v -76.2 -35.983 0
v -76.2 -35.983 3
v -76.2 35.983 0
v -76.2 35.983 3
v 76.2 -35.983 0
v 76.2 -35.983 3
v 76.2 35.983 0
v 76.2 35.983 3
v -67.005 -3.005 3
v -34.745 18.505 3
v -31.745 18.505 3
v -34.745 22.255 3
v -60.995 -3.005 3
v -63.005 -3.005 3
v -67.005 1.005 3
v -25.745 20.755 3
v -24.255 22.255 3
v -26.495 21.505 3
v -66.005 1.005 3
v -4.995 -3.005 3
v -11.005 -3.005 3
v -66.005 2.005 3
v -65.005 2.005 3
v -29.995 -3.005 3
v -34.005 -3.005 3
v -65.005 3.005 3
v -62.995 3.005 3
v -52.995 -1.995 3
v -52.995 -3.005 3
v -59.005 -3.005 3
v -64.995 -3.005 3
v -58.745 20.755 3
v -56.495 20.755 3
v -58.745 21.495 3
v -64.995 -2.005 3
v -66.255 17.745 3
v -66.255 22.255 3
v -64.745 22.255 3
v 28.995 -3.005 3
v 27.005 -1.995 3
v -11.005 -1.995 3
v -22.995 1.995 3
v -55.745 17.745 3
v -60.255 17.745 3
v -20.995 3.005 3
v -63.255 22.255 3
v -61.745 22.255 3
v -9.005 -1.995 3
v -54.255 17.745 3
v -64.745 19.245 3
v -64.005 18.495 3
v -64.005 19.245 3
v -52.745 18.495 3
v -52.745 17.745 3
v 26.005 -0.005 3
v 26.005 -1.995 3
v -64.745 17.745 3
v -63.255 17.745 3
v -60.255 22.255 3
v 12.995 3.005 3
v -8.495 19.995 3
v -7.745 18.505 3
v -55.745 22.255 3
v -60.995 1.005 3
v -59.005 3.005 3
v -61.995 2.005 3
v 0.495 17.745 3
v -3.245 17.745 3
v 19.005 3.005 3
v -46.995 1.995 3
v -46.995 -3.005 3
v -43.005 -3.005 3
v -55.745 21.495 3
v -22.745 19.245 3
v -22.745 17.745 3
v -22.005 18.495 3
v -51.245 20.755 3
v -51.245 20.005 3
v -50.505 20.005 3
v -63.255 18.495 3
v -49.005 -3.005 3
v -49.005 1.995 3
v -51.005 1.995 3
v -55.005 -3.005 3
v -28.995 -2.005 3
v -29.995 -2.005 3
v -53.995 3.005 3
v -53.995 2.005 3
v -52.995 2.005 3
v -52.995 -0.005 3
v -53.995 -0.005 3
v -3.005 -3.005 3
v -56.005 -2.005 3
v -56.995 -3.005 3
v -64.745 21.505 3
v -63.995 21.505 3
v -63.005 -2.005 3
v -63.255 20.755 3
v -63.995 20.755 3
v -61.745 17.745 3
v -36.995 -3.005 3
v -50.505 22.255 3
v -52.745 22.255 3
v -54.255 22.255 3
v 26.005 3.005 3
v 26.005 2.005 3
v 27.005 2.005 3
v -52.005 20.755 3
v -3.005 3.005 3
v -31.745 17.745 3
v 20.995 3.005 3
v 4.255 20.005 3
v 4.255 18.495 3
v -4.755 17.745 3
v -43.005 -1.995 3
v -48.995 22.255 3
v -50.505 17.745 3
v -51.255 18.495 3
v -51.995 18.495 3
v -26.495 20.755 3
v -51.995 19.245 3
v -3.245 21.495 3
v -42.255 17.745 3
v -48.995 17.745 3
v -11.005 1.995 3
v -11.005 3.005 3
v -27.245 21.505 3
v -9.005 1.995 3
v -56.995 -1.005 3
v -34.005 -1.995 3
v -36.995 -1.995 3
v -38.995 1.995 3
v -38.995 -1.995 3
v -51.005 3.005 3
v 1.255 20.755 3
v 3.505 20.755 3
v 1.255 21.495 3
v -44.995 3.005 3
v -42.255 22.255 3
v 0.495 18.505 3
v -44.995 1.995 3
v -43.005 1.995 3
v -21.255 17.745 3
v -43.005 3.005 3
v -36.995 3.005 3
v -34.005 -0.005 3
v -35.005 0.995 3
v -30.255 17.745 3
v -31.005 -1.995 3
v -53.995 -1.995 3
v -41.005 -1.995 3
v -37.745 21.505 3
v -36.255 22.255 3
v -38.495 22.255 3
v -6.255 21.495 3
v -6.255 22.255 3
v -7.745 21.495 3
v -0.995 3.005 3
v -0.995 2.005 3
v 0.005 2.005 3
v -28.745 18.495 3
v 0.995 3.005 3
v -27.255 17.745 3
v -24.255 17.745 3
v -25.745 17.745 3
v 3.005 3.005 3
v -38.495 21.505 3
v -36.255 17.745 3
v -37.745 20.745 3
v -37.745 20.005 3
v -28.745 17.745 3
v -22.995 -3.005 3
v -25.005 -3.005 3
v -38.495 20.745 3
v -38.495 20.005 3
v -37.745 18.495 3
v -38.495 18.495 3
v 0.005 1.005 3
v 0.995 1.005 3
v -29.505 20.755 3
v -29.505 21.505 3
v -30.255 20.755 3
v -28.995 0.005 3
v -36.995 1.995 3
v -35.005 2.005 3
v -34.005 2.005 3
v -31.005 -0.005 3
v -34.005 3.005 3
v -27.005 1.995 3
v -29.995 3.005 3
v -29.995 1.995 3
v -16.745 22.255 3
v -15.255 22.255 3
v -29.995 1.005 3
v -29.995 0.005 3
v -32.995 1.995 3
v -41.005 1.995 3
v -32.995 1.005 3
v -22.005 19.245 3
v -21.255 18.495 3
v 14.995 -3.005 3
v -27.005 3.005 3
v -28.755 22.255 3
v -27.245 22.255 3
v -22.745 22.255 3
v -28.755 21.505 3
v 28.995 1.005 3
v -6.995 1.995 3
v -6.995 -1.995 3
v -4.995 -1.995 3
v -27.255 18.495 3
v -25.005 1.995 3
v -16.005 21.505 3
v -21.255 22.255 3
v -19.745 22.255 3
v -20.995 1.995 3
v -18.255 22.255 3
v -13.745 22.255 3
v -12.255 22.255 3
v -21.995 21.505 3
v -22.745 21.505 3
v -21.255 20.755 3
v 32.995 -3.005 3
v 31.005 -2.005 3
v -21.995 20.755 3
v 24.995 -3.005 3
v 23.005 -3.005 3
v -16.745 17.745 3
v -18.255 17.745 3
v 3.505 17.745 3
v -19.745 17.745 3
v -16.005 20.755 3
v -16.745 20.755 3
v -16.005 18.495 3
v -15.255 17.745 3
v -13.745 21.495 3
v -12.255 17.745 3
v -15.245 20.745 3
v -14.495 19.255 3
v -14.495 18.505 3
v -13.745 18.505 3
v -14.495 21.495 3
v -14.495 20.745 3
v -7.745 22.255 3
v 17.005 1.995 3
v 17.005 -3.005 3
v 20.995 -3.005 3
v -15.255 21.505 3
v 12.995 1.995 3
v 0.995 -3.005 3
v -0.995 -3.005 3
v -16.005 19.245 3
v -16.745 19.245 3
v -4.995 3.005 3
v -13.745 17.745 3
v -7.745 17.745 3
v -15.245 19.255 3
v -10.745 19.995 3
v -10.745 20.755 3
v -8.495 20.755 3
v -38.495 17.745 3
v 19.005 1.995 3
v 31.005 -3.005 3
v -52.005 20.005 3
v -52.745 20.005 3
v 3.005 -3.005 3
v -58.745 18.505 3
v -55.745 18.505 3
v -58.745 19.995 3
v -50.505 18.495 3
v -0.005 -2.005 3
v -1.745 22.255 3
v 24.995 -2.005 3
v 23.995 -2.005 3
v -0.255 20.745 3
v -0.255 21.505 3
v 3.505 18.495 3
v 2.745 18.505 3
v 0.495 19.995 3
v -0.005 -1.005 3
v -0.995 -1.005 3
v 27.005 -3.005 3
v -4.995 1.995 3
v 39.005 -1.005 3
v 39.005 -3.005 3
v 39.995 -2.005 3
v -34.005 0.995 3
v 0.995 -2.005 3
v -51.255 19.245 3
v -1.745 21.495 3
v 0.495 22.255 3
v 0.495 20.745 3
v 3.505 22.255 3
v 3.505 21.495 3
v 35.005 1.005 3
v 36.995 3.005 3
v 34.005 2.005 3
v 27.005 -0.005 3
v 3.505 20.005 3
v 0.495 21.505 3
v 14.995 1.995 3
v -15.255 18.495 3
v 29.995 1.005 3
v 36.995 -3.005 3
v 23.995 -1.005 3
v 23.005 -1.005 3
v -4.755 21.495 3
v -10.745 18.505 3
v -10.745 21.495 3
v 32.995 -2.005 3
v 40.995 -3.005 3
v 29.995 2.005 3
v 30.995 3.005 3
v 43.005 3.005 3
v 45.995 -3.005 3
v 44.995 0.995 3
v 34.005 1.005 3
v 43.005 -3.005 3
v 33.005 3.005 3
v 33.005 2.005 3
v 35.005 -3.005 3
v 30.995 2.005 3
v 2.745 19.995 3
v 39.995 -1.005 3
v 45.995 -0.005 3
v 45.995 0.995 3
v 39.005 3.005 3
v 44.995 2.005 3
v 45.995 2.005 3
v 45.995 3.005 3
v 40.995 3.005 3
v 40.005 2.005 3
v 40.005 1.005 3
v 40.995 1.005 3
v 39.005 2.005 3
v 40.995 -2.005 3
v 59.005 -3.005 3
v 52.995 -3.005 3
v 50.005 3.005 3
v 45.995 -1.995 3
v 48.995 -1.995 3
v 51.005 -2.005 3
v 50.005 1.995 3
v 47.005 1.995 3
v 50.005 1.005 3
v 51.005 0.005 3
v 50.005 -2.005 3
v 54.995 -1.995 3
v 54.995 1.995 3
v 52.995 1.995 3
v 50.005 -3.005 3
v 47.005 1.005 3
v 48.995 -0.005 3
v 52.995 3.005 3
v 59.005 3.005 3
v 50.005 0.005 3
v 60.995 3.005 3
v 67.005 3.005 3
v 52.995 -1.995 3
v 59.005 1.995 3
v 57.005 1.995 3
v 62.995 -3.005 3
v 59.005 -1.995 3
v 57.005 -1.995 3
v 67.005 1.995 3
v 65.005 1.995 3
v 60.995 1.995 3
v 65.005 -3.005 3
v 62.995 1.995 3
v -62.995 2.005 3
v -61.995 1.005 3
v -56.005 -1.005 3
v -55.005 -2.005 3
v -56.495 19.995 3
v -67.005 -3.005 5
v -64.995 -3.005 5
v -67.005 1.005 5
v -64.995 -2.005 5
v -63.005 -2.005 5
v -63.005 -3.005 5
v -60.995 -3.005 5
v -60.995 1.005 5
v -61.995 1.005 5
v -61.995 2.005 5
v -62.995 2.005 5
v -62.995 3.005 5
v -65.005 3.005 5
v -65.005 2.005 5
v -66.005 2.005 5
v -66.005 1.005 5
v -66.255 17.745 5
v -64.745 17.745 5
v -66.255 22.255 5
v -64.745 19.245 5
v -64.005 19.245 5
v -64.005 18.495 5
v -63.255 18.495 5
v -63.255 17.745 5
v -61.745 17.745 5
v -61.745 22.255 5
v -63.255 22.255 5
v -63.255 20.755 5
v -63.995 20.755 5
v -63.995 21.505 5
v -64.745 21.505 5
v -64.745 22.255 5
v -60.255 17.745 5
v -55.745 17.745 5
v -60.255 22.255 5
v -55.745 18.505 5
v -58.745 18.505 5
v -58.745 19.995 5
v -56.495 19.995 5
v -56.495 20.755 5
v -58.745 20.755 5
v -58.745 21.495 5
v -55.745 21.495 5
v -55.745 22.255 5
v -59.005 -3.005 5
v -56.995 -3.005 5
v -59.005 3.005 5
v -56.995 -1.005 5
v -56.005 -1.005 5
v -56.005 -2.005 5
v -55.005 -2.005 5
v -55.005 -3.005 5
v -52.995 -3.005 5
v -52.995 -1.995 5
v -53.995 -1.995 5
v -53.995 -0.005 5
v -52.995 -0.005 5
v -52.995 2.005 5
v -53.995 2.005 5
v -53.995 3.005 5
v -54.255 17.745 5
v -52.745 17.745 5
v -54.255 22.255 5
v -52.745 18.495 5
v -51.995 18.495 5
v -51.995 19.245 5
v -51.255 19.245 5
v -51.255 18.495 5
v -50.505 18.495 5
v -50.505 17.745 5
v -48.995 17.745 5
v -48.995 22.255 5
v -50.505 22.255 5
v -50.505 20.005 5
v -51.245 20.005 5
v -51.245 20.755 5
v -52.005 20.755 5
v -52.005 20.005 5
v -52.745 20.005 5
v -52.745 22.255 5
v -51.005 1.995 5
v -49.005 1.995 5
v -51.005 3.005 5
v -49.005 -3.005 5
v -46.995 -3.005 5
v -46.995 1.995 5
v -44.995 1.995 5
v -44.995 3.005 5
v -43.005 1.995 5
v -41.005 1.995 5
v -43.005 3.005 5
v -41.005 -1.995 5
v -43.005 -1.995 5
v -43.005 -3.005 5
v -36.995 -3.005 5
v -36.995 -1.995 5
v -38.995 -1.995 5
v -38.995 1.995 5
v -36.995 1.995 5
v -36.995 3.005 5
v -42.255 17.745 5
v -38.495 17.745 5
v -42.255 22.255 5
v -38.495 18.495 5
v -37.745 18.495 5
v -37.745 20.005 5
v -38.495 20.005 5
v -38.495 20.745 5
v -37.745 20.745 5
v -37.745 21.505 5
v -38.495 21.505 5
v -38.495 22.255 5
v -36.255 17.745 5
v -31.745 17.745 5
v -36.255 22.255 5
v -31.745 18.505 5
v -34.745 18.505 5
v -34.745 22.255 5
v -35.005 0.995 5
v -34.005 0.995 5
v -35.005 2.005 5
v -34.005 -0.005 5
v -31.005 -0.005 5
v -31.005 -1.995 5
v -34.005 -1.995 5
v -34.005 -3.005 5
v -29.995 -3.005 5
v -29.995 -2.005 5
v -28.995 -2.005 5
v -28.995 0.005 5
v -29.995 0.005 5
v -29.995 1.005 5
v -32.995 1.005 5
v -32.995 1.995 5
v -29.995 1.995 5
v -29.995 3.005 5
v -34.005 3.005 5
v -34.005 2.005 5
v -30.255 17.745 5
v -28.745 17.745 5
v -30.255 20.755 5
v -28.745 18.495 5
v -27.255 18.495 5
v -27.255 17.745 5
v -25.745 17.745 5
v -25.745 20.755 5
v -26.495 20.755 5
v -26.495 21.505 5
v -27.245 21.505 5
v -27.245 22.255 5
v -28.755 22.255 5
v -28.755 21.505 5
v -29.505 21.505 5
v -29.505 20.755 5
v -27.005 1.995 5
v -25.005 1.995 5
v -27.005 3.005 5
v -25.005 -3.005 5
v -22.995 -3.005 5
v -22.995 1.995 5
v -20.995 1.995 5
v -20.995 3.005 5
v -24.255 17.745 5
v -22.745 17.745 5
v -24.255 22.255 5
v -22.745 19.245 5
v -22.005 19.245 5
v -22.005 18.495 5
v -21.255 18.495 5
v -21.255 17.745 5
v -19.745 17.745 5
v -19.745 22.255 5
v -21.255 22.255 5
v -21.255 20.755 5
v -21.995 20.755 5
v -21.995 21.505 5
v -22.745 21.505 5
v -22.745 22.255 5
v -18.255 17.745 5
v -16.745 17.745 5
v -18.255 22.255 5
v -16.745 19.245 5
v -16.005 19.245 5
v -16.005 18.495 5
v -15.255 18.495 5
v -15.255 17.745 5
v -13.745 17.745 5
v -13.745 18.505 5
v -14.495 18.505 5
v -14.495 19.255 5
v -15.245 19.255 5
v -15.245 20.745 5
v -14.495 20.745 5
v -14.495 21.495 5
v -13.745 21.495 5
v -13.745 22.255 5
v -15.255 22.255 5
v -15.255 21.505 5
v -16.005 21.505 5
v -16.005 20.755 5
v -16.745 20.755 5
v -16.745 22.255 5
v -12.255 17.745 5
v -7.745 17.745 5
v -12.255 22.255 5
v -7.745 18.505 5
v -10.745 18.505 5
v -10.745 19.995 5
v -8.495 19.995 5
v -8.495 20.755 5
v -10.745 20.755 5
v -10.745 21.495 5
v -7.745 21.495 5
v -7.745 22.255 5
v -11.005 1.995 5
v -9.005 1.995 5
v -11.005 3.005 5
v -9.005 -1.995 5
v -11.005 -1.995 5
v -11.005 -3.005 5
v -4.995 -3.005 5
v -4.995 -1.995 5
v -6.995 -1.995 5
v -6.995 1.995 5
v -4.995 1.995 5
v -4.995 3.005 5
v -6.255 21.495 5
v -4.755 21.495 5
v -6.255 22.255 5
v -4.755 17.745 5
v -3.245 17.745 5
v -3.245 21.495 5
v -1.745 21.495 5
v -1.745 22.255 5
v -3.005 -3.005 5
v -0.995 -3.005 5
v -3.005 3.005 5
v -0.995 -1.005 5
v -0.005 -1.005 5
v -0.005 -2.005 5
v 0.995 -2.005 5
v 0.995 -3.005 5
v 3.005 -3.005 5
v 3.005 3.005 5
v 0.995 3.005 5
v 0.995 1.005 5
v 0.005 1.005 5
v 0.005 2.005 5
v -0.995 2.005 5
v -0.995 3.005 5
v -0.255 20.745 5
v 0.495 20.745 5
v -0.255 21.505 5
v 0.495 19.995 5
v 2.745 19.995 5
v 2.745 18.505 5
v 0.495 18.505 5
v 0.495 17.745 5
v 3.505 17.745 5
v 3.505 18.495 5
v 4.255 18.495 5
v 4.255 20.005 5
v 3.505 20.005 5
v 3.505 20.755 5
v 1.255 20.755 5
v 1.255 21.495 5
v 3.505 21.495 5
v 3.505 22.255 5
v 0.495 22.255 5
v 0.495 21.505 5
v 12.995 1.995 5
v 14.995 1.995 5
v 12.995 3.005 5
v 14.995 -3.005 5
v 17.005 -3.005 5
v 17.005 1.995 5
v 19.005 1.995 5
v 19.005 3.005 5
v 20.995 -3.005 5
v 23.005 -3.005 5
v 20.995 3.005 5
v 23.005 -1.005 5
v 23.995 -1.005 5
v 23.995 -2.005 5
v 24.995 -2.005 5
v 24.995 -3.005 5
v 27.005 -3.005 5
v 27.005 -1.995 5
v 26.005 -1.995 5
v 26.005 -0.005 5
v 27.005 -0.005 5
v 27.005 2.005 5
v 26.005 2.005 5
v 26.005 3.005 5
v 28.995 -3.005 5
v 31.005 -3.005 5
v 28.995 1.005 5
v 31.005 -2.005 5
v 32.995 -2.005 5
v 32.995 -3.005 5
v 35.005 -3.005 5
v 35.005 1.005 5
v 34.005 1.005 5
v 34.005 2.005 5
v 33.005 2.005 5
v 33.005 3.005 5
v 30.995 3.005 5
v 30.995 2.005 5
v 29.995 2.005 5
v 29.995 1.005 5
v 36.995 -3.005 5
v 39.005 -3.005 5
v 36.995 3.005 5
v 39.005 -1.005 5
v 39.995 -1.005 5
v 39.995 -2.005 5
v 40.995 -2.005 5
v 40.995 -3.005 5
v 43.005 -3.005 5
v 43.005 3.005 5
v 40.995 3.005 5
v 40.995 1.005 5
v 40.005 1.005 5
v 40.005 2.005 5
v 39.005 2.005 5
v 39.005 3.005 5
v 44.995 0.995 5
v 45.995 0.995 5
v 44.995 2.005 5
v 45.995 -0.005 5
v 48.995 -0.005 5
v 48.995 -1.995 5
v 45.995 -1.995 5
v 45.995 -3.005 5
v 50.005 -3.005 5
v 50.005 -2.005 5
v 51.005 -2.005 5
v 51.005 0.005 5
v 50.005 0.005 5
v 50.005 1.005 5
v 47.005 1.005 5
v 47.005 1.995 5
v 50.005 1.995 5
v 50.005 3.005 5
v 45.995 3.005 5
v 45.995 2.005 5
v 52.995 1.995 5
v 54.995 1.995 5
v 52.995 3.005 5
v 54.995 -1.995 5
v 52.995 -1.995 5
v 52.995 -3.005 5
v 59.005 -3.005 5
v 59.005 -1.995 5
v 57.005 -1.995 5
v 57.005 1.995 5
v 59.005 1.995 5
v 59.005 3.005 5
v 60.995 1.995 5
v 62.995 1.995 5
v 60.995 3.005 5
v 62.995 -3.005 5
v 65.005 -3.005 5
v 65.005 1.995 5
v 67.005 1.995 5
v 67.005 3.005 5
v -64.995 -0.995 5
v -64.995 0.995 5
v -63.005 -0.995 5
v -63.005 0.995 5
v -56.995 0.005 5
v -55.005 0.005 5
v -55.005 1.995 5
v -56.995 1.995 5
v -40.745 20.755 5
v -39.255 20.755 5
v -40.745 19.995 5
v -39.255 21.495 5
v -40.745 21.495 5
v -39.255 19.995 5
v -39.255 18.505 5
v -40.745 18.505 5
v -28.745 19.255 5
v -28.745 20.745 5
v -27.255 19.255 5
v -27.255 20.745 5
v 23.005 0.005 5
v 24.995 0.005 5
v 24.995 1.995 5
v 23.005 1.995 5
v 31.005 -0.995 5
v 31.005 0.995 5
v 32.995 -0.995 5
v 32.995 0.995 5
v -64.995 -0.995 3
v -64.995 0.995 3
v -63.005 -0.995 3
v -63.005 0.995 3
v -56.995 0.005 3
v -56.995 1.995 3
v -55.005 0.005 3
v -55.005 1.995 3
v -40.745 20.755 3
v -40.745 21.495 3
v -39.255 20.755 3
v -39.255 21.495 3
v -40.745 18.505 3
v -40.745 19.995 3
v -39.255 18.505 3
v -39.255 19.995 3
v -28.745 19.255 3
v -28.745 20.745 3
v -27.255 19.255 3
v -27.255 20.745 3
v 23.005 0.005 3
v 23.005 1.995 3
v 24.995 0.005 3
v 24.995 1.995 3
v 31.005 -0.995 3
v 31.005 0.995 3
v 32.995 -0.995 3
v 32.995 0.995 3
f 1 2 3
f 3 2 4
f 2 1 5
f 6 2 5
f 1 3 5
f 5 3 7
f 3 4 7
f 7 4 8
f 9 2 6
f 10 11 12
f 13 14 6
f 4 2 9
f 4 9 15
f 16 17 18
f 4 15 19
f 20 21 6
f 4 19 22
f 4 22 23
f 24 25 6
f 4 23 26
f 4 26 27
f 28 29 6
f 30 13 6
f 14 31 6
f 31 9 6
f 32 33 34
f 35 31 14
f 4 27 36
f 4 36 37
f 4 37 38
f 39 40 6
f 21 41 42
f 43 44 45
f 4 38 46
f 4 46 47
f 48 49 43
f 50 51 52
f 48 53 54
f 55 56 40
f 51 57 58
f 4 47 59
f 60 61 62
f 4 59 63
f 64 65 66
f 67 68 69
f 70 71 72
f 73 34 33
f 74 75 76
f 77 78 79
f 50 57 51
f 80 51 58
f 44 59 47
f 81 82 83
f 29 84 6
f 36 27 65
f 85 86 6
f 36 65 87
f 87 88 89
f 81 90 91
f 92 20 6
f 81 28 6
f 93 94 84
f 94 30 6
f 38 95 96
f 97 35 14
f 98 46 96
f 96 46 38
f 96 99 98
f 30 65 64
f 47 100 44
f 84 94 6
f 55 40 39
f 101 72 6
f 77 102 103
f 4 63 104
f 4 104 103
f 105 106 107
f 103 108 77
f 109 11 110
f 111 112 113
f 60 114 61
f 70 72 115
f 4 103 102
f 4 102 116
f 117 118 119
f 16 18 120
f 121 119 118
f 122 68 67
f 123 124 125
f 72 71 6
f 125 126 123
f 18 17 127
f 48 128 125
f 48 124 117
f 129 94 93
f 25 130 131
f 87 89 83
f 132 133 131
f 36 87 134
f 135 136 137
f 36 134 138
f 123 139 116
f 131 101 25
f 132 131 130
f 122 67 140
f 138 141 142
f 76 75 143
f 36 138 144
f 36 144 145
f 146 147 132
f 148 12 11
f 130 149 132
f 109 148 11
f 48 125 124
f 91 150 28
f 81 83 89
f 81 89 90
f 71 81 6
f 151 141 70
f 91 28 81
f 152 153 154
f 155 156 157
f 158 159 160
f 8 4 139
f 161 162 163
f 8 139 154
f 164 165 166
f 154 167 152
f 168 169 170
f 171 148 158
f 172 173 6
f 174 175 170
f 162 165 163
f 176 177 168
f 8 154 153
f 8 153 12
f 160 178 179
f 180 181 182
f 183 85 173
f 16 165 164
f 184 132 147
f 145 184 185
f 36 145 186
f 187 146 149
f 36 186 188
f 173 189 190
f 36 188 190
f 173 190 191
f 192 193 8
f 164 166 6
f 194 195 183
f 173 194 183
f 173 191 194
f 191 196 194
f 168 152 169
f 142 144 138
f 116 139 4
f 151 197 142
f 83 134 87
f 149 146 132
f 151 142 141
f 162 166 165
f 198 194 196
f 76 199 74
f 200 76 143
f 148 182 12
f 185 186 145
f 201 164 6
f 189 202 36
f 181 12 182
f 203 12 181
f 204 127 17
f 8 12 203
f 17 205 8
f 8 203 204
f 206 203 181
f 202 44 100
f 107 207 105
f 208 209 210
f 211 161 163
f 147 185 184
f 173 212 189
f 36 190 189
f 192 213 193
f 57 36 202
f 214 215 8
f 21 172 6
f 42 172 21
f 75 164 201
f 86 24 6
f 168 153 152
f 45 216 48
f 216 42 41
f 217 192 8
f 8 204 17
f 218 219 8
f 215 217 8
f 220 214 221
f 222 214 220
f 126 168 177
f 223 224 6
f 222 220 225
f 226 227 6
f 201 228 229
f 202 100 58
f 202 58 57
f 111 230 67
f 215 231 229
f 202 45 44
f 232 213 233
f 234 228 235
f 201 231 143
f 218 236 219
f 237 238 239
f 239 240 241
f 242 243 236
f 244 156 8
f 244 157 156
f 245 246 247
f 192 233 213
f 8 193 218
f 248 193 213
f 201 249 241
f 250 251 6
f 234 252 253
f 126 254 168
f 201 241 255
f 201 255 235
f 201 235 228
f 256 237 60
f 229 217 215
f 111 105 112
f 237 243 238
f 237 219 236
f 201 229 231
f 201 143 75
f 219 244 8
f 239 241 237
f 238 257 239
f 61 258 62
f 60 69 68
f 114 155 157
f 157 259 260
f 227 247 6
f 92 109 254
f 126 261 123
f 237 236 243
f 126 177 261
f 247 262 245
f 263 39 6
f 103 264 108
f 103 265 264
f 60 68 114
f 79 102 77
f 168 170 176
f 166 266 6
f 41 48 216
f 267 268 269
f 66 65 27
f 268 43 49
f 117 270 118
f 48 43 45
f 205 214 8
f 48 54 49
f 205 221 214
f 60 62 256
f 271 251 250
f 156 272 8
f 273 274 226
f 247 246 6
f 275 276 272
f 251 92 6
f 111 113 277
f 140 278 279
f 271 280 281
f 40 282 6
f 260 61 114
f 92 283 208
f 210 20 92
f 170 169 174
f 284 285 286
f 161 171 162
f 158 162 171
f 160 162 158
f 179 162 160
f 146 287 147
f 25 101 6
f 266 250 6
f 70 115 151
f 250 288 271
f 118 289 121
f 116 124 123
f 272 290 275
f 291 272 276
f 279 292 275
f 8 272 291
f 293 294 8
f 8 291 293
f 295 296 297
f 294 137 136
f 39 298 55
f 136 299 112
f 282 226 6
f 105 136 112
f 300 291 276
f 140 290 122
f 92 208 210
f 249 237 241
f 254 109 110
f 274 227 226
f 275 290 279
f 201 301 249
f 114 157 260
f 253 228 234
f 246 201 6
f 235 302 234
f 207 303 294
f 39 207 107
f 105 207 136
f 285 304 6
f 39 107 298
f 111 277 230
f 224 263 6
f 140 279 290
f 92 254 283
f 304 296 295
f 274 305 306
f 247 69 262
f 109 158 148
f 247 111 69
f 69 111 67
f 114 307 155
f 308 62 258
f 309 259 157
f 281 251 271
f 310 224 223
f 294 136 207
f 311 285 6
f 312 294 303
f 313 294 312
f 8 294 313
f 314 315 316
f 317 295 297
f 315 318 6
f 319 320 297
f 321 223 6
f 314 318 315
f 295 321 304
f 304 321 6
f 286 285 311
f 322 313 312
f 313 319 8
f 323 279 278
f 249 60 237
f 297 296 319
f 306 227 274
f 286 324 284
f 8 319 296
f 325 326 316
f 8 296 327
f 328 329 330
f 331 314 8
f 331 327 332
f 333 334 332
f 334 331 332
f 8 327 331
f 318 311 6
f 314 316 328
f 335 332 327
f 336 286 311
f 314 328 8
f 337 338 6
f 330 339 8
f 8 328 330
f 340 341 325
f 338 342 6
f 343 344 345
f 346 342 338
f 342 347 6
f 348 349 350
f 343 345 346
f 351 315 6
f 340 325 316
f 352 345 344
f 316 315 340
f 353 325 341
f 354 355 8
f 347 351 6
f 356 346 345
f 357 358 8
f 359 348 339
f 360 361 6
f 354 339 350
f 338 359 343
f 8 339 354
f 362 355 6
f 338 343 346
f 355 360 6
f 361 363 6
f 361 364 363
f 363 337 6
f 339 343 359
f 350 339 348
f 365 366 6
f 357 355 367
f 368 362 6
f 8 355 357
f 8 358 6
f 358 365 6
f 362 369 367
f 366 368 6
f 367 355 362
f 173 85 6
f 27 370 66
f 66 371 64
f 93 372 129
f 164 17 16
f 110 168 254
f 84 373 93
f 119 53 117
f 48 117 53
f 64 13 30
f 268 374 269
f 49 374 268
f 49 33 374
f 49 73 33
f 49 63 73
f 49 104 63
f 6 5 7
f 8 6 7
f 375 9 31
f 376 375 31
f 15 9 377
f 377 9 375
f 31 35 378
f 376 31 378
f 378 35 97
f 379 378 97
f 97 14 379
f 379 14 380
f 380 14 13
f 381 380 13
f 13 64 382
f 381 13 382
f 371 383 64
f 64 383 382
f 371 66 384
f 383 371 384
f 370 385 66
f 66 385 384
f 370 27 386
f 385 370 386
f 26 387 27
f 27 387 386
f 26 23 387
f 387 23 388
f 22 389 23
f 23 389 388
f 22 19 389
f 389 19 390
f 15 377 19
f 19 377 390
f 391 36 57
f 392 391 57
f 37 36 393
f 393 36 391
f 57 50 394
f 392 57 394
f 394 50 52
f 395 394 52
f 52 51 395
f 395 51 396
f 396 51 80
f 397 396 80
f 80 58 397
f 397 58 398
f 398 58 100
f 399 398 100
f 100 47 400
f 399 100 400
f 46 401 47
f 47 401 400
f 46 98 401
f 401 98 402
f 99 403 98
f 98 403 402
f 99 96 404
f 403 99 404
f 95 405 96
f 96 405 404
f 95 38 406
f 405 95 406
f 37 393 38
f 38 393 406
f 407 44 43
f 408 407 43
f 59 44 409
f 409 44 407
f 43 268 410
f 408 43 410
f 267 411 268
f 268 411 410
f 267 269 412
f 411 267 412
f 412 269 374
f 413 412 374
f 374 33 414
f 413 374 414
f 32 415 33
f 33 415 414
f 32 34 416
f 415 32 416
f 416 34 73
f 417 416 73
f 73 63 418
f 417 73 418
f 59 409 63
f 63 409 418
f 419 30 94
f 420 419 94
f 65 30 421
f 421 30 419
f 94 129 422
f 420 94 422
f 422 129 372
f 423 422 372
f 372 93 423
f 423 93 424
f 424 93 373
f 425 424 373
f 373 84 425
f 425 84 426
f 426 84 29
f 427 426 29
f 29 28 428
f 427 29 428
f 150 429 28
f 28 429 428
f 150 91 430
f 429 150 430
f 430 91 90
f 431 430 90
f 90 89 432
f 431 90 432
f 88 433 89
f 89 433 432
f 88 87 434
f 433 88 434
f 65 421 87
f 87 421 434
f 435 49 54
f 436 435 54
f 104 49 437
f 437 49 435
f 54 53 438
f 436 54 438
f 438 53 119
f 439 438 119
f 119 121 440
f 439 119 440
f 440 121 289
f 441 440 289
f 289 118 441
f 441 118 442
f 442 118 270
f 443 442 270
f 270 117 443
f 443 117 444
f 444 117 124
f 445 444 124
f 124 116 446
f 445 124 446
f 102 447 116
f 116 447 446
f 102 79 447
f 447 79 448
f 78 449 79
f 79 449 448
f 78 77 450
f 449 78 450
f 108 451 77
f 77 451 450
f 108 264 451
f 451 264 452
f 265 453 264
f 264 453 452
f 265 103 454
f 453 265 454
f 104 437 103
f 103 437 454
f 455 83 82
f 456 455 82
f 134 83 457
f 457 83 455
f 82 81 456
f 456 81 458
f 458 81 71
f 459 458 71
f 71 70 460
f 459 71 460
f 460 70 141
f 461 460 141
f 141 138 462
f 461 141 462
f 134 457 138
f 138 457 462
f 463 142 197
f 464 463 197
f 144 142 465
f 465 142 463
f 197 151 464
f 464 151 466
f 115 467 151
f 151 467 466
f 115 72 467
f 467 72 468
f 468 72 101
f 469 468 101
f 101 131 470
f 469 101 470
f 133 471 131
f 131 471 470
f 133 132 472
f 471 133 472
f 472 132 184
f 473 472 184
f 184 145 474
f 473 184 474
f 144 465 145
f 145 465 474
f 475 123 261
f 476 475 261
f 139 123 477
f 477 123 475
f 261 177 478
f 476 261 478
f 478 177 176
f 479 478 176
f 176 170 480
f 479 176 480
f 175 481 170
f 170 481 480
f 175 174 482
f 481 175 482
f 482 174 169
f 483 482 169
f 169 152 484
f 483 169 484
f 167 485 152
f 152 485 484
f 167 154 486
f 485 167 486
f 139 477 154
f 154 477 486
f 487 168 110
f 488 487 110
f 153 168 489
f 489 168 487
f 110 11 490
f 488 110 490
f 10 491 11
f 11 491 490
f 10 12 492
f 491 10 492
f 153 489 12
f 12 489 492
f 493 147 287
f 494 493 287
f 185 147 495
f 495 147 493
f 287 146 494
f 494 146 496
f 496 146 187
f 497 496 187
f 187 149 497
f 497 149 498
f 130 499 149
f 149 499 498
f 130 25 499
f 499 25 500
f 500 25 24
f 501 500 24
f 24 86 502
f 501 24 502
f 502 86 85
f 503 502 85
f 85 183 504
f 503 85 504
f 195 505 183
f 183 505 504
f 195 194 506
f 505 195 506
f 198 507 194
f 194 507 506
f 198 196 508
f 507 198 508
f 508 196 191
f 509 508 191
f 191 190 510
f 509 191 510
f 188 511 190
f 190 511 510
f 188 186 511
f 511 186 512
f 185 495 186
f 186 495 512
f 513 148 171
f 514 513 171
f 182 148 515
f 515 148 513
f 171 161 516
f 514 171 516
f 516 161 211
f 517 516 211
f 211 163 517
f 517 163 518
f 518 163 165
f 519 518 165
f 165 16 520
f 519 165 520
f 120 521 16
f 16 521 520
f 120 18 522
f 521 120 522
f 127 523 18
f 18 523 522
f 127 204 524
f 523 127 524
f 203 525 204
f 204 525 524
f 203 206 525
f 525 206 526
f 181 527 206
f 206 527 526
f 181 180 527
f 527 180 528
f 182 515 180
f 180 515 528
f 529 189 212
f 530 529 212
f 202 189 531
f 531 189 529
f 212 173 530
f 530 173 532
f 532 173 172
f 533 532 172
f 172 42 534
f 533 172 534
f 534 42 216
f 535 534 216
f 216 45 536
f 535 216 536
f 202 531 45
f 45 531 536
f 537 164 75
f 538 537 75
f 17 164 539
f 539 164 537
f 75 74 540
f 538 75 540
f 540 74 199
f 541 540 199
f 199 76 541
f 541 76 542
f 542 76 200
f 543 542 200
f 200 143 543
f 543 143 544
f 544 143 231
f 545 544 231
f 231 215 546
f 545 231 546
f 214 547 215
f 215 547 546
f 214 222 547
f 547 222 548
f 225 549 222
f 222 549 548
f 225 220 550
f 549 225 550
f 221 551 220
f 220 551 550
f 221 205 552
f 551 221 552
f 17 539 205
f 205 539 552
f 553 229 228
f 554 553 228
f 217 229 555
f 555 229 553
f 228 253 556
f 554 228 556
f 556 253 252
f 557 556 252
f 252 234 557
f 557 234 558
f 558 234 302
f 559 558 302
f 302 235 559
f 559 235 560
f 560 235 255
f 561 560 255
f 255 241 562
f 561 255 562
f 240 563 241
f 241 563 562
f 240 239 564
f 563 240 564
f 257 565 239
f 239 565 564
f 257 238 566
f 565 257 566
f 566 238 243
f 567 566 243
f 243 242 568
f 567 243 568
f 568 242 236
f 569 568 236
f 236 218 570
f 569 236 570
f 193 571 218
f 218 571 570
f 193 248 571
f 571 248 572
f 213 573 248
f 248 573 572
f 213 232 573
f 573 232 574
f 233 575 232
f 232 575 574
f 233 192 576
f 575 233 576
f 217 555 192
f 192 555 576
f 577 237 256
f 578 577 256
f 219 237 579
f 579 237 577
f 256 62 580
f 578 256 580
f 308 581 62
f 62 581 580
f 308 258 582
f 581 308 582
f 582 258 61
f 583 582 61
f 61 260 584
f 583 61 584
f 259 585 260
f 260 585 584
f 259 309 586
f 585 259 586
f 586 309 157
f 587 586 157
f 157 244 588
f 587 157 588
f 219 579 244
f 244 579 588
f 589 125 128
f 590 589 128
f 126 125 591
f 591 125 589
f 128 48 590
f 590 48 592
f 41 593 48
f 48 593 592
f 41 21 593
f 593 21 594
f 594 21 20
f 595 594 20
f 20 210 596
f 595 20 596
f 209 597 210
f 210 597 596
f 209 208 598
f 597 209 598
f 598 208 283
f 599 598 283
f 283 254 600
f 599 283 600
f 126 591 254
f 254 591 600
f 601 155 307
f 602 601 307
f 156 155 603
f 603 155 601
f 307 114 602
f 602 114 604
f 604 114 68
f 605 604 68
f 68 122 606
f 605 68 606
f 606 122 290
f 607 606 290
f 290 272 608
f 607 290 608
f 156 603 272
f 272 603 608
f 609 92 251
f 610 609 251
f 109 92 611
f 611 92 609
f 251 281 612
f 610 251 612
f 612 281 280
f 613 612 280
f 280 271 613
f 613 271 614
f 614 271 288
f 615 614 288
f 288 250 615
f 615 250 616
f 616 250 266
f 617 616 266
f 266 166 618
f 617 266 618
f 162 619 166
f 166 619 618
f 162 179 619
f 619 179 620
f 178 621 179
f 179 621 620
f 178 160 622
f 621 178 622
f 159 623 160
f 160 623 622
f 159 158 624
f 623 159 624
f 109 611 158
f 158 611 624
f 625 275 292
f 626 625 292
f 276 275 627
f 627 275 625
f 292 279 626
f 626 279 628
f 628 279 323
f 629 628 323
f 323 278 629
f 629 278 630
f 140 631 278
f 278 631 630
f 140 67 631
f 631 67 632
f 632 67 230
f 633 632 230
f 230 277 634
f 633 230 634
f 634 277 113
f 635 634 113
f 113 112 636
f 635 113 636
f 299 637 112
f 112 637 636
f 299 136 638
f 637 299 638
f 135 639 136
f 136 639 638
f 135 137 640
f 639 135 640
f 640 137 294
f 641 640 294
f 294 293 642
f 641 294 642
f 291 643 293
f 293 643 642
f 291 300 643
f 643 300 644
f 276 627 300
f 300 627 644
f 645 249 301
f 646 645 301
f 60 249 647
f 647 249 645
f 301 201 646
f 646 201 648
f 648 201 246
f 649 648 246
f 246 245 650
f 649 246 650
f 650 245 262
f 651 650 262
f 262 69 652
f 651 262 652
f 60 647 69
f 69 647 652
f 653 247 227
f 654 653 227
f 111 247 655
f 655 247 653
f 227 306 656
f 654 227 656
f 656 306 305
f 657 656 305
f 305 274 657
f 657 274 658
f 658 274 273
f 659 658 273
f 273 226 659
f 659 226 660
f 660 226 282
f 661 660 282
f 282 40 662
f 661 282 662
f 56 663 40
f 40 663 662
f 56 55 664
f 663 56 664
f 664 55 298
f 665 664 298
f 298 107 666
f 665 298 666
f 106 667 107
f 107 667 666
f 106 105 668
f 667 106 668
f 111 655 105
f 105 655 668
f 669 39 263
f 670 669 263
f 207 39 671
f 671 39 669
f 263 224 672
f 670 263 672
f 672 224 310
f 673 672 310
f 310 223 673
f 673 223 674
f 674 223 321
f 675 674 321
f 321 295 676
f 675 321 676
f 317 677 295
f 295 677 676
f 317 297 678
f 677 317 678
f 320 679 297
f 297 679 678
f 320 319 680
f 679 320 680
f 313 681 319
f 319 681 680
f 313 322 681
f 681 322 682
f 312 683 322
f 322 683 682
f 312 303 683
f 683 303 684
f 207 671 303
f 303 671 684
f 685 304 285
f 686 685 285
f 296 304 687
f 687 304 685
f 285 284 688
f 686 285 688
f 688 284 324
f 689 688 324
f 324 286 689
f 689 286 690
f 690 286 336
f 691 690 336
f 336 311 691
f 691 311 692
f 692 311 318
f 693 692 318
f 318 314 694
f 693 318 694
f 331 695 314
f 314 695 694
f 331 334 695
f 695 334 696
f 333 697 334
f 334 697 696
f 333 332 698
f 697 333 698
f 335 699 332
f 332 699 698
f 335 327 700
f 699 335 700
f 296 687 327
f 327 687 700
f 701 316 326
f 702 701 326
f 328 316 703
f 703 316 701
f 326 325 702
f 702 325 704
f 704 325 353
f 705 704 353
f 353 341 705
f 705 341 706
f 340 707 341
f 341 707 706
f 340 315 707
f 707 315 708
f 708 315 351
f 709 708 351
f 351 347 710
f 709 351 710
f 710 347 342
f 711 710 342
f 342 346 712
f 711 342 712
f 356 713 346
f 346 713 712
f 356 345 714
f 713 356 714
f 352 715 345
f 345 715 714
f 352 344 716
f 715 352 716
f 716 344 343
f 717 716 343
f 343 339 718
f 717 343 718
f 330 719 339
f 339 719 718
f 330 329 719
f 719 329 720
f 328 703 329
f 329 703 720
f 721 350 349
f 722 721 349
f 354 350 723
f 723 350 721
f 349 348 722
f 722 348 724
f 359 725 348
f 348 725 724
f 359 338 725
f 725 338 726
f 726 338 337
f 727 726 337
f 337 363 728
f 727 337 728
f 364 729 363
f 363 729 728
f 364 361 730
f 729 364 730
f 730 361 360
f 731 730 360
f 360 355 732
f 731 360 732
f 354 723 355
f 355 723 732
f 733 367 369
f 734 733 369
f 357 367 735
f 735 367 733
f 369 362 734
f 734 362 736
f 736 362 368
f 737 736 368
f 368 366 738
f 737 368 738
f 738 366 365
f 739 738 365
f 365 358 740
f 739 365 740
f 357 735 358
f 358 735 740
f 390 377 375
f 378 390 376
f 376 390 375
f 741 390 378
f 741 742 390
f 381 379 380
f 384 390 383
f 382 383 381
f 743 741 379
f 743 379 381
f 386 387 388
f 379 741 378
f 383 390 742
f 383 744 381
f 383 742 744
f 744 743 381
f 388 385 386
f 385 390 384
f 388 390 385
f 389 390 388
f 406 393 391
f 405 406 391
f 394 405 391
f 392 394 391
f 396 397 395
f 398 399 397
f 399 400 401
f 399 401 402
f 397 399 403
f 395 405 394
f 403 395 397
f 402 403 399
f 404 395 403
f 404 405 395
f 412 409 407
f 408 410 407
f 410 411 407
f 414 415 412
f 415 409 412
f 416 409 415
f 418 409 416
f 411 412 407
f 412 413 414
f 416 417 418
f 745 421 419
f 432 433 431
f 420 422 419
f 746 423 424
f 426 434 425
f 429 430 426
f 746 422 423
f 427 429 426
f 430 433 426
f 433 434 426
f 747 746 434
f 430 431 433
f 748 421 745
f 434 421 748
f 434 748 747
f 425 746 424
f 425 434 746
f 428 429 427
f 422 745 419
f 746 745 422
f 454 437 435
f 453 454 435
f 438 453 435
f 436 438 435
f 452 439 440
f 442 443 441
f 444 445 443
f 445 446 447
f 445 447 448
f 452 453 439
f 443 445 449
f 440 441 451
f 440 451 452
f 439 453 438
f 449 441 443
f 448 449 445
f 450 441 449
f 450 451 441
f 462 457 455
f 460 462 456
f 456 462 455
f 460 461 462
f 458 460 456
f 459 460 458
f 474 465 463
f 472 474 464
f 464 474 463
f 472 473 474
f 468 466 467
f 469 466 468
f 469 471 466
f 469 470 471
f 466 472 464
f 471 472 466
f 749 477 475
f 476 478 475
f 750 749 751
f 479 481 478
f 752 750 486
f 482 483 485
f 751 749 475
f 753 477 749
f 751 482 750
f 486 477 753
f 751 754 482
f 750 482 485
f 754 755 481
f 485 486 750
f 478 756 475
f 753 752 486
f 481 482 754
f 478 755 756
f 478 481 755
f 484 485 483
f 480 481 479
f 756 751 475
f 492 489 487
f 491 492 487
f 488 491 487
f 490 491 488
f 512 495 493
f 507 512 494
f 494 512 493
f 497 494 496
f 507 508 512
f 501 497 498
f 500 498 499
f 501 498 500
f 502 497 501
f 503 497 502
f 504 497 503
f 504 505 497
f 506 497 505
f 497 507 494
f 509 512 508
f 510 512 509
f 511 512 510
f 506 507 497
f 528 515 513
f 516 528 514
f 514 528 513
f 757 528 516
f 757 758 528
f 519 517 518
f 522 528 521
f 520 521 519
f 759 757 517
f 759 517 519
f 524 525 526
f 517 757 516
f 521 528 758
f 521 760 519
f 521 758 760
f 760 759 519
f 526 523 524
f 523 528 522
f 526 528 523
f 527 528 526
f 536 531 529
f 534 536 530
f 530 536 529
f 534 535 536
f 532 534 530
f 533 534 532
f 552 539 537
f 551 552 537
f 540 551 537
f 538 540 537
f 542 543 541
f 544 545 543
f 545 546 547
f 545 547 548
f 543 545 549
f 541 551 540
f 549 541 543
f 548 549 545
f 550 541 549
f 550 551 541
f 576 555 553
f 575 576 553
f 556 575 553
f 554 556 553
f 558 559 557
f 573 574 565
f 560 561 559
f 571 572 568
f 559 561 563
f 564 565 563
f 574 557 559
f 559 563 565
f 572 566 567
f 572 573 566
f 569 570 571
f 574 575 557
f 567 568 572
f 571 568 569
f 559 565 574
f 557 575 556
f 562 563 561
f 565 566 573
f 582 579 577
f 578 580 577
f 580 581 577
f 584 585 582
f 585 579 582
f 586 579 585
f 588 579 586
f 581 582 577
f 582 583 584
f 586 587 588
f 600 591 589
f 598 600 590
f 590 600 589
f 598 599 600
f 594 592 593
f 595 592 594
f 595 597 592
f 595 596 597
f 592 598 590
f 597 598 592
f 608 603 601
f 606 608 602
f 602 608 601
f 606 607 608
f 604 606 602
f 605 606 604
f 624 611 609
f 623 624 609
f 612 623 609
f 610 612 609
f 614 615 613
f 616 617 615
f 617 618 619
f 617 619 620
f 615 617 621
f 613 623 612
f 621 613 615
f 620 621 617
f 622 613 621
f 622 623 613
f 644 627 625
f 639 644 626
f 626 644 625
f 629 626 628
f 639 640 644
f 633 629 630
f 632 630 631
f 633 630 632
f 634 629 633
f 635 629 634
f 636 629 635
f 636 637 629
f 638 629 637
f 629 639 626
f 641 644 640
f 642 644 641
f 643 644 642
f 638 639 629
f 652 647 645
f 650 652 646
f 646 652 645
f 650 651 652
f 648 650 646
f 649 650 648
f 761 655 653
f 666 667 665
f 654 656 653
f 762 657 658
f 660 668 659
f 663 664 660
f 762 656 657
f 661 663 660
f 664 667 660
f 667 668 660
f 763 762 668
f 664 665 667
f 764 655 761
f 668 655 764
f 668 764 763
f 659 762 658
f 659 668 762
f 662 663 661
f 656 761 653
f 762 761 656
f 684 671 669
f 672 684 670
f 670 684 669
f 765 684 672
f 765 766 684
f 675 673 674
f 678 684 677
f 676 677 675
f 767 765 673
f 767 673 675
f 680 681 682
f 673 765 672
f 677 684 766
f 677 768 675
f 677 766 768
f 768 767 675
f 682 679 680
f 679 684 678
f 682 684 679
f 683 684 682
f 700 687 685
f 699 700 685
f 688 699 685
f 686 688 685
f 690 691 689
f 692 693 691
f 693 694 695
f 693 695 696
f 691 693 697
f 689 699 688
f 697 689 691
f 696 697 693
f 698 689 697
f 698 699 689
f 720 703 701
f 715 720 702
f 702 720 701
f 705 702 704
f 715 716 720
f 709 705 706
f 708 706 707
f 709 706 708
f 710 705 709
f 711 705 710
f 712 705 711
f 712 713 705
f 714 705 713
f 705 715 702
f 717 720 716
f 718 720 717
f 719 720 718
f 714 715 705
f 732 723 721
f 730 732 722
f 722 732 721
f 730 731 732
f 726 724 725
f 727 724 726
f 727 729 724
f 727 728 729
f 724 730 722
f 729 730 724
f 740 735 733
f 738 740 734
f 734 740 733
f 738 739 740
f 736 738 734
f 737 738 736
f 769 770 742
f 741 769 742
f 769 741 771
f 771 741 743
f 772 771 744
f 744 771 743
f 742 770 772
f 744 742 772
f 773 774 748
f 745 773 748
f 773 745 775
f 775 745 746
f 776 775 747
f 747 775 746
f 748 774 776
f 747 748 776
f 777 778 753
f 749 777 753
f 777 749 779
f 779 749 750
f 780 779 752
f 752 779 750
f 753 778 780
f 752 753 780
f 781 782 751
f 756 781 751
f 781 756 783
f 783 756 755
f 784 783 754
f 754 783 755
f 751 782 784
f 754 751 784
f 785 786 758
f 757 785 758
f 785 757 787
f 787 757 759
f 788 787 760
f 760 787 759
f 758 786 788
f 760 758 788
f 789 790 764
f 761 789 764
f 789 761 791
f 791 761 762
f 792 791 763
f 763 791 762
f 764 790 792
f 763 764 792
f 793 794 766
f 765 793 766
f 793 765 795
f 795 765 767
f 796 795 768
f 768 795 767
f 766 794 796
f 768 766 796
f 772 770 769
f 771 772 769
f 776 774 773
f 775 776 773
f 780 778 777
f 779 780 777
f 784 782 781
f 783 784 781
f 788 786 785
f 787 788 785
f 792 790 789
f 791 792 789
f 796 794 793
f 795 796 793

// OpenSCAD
//
// 3D Cheque (bank check)
//
// designed for New Blankets Artist-In-Transit presentation
//
// created by Theron Trowbridge (Bangsplat)
// created:	2013-11-11
// modified:	2013-11-11
// 
// dimensions taken from:
// https://www.businesschecksprinting.com/check-dimensions-ezp-22.html
//

include <bitmap.scad>;

mm=25.4;
myheight=2+(5/6);
mywidth=6;
mythickness=3;

top_chars = ["N","E","W","","B","L","A","N","K","E","T","S"];
top_char_count = 12;
top_block_size = 0.75;
top_height = 5;

chars = ["A","R","T","I","S","T","","I","N","","T","R","A","N","S","I","T"];
char_count = 17;
block_size = 1;
height = 5;

union() {

	translate( v=[0,0,mythickness/2] ) {
		cube( size=[mywidth*mm,myheight*mm,mythickness], center=true );
	}

	union() {
		rotate( a=[0,0,-90] ) {
			translate(v = [-20,-block_size*8*char_count/2+block_size*8/2,0]) {
				8bit_str(top_chars, top_char_count, top_block_size, top_height);
			}
		}
	}

	union() {
		rotate( a=[0,0,-90] ) {
			translate(v = [0,-block_size*8*char_count/2+block_size*8/2,0]) {
				8bit_str(chars, char_count, block_size, height);
			}
		}
	}

}
